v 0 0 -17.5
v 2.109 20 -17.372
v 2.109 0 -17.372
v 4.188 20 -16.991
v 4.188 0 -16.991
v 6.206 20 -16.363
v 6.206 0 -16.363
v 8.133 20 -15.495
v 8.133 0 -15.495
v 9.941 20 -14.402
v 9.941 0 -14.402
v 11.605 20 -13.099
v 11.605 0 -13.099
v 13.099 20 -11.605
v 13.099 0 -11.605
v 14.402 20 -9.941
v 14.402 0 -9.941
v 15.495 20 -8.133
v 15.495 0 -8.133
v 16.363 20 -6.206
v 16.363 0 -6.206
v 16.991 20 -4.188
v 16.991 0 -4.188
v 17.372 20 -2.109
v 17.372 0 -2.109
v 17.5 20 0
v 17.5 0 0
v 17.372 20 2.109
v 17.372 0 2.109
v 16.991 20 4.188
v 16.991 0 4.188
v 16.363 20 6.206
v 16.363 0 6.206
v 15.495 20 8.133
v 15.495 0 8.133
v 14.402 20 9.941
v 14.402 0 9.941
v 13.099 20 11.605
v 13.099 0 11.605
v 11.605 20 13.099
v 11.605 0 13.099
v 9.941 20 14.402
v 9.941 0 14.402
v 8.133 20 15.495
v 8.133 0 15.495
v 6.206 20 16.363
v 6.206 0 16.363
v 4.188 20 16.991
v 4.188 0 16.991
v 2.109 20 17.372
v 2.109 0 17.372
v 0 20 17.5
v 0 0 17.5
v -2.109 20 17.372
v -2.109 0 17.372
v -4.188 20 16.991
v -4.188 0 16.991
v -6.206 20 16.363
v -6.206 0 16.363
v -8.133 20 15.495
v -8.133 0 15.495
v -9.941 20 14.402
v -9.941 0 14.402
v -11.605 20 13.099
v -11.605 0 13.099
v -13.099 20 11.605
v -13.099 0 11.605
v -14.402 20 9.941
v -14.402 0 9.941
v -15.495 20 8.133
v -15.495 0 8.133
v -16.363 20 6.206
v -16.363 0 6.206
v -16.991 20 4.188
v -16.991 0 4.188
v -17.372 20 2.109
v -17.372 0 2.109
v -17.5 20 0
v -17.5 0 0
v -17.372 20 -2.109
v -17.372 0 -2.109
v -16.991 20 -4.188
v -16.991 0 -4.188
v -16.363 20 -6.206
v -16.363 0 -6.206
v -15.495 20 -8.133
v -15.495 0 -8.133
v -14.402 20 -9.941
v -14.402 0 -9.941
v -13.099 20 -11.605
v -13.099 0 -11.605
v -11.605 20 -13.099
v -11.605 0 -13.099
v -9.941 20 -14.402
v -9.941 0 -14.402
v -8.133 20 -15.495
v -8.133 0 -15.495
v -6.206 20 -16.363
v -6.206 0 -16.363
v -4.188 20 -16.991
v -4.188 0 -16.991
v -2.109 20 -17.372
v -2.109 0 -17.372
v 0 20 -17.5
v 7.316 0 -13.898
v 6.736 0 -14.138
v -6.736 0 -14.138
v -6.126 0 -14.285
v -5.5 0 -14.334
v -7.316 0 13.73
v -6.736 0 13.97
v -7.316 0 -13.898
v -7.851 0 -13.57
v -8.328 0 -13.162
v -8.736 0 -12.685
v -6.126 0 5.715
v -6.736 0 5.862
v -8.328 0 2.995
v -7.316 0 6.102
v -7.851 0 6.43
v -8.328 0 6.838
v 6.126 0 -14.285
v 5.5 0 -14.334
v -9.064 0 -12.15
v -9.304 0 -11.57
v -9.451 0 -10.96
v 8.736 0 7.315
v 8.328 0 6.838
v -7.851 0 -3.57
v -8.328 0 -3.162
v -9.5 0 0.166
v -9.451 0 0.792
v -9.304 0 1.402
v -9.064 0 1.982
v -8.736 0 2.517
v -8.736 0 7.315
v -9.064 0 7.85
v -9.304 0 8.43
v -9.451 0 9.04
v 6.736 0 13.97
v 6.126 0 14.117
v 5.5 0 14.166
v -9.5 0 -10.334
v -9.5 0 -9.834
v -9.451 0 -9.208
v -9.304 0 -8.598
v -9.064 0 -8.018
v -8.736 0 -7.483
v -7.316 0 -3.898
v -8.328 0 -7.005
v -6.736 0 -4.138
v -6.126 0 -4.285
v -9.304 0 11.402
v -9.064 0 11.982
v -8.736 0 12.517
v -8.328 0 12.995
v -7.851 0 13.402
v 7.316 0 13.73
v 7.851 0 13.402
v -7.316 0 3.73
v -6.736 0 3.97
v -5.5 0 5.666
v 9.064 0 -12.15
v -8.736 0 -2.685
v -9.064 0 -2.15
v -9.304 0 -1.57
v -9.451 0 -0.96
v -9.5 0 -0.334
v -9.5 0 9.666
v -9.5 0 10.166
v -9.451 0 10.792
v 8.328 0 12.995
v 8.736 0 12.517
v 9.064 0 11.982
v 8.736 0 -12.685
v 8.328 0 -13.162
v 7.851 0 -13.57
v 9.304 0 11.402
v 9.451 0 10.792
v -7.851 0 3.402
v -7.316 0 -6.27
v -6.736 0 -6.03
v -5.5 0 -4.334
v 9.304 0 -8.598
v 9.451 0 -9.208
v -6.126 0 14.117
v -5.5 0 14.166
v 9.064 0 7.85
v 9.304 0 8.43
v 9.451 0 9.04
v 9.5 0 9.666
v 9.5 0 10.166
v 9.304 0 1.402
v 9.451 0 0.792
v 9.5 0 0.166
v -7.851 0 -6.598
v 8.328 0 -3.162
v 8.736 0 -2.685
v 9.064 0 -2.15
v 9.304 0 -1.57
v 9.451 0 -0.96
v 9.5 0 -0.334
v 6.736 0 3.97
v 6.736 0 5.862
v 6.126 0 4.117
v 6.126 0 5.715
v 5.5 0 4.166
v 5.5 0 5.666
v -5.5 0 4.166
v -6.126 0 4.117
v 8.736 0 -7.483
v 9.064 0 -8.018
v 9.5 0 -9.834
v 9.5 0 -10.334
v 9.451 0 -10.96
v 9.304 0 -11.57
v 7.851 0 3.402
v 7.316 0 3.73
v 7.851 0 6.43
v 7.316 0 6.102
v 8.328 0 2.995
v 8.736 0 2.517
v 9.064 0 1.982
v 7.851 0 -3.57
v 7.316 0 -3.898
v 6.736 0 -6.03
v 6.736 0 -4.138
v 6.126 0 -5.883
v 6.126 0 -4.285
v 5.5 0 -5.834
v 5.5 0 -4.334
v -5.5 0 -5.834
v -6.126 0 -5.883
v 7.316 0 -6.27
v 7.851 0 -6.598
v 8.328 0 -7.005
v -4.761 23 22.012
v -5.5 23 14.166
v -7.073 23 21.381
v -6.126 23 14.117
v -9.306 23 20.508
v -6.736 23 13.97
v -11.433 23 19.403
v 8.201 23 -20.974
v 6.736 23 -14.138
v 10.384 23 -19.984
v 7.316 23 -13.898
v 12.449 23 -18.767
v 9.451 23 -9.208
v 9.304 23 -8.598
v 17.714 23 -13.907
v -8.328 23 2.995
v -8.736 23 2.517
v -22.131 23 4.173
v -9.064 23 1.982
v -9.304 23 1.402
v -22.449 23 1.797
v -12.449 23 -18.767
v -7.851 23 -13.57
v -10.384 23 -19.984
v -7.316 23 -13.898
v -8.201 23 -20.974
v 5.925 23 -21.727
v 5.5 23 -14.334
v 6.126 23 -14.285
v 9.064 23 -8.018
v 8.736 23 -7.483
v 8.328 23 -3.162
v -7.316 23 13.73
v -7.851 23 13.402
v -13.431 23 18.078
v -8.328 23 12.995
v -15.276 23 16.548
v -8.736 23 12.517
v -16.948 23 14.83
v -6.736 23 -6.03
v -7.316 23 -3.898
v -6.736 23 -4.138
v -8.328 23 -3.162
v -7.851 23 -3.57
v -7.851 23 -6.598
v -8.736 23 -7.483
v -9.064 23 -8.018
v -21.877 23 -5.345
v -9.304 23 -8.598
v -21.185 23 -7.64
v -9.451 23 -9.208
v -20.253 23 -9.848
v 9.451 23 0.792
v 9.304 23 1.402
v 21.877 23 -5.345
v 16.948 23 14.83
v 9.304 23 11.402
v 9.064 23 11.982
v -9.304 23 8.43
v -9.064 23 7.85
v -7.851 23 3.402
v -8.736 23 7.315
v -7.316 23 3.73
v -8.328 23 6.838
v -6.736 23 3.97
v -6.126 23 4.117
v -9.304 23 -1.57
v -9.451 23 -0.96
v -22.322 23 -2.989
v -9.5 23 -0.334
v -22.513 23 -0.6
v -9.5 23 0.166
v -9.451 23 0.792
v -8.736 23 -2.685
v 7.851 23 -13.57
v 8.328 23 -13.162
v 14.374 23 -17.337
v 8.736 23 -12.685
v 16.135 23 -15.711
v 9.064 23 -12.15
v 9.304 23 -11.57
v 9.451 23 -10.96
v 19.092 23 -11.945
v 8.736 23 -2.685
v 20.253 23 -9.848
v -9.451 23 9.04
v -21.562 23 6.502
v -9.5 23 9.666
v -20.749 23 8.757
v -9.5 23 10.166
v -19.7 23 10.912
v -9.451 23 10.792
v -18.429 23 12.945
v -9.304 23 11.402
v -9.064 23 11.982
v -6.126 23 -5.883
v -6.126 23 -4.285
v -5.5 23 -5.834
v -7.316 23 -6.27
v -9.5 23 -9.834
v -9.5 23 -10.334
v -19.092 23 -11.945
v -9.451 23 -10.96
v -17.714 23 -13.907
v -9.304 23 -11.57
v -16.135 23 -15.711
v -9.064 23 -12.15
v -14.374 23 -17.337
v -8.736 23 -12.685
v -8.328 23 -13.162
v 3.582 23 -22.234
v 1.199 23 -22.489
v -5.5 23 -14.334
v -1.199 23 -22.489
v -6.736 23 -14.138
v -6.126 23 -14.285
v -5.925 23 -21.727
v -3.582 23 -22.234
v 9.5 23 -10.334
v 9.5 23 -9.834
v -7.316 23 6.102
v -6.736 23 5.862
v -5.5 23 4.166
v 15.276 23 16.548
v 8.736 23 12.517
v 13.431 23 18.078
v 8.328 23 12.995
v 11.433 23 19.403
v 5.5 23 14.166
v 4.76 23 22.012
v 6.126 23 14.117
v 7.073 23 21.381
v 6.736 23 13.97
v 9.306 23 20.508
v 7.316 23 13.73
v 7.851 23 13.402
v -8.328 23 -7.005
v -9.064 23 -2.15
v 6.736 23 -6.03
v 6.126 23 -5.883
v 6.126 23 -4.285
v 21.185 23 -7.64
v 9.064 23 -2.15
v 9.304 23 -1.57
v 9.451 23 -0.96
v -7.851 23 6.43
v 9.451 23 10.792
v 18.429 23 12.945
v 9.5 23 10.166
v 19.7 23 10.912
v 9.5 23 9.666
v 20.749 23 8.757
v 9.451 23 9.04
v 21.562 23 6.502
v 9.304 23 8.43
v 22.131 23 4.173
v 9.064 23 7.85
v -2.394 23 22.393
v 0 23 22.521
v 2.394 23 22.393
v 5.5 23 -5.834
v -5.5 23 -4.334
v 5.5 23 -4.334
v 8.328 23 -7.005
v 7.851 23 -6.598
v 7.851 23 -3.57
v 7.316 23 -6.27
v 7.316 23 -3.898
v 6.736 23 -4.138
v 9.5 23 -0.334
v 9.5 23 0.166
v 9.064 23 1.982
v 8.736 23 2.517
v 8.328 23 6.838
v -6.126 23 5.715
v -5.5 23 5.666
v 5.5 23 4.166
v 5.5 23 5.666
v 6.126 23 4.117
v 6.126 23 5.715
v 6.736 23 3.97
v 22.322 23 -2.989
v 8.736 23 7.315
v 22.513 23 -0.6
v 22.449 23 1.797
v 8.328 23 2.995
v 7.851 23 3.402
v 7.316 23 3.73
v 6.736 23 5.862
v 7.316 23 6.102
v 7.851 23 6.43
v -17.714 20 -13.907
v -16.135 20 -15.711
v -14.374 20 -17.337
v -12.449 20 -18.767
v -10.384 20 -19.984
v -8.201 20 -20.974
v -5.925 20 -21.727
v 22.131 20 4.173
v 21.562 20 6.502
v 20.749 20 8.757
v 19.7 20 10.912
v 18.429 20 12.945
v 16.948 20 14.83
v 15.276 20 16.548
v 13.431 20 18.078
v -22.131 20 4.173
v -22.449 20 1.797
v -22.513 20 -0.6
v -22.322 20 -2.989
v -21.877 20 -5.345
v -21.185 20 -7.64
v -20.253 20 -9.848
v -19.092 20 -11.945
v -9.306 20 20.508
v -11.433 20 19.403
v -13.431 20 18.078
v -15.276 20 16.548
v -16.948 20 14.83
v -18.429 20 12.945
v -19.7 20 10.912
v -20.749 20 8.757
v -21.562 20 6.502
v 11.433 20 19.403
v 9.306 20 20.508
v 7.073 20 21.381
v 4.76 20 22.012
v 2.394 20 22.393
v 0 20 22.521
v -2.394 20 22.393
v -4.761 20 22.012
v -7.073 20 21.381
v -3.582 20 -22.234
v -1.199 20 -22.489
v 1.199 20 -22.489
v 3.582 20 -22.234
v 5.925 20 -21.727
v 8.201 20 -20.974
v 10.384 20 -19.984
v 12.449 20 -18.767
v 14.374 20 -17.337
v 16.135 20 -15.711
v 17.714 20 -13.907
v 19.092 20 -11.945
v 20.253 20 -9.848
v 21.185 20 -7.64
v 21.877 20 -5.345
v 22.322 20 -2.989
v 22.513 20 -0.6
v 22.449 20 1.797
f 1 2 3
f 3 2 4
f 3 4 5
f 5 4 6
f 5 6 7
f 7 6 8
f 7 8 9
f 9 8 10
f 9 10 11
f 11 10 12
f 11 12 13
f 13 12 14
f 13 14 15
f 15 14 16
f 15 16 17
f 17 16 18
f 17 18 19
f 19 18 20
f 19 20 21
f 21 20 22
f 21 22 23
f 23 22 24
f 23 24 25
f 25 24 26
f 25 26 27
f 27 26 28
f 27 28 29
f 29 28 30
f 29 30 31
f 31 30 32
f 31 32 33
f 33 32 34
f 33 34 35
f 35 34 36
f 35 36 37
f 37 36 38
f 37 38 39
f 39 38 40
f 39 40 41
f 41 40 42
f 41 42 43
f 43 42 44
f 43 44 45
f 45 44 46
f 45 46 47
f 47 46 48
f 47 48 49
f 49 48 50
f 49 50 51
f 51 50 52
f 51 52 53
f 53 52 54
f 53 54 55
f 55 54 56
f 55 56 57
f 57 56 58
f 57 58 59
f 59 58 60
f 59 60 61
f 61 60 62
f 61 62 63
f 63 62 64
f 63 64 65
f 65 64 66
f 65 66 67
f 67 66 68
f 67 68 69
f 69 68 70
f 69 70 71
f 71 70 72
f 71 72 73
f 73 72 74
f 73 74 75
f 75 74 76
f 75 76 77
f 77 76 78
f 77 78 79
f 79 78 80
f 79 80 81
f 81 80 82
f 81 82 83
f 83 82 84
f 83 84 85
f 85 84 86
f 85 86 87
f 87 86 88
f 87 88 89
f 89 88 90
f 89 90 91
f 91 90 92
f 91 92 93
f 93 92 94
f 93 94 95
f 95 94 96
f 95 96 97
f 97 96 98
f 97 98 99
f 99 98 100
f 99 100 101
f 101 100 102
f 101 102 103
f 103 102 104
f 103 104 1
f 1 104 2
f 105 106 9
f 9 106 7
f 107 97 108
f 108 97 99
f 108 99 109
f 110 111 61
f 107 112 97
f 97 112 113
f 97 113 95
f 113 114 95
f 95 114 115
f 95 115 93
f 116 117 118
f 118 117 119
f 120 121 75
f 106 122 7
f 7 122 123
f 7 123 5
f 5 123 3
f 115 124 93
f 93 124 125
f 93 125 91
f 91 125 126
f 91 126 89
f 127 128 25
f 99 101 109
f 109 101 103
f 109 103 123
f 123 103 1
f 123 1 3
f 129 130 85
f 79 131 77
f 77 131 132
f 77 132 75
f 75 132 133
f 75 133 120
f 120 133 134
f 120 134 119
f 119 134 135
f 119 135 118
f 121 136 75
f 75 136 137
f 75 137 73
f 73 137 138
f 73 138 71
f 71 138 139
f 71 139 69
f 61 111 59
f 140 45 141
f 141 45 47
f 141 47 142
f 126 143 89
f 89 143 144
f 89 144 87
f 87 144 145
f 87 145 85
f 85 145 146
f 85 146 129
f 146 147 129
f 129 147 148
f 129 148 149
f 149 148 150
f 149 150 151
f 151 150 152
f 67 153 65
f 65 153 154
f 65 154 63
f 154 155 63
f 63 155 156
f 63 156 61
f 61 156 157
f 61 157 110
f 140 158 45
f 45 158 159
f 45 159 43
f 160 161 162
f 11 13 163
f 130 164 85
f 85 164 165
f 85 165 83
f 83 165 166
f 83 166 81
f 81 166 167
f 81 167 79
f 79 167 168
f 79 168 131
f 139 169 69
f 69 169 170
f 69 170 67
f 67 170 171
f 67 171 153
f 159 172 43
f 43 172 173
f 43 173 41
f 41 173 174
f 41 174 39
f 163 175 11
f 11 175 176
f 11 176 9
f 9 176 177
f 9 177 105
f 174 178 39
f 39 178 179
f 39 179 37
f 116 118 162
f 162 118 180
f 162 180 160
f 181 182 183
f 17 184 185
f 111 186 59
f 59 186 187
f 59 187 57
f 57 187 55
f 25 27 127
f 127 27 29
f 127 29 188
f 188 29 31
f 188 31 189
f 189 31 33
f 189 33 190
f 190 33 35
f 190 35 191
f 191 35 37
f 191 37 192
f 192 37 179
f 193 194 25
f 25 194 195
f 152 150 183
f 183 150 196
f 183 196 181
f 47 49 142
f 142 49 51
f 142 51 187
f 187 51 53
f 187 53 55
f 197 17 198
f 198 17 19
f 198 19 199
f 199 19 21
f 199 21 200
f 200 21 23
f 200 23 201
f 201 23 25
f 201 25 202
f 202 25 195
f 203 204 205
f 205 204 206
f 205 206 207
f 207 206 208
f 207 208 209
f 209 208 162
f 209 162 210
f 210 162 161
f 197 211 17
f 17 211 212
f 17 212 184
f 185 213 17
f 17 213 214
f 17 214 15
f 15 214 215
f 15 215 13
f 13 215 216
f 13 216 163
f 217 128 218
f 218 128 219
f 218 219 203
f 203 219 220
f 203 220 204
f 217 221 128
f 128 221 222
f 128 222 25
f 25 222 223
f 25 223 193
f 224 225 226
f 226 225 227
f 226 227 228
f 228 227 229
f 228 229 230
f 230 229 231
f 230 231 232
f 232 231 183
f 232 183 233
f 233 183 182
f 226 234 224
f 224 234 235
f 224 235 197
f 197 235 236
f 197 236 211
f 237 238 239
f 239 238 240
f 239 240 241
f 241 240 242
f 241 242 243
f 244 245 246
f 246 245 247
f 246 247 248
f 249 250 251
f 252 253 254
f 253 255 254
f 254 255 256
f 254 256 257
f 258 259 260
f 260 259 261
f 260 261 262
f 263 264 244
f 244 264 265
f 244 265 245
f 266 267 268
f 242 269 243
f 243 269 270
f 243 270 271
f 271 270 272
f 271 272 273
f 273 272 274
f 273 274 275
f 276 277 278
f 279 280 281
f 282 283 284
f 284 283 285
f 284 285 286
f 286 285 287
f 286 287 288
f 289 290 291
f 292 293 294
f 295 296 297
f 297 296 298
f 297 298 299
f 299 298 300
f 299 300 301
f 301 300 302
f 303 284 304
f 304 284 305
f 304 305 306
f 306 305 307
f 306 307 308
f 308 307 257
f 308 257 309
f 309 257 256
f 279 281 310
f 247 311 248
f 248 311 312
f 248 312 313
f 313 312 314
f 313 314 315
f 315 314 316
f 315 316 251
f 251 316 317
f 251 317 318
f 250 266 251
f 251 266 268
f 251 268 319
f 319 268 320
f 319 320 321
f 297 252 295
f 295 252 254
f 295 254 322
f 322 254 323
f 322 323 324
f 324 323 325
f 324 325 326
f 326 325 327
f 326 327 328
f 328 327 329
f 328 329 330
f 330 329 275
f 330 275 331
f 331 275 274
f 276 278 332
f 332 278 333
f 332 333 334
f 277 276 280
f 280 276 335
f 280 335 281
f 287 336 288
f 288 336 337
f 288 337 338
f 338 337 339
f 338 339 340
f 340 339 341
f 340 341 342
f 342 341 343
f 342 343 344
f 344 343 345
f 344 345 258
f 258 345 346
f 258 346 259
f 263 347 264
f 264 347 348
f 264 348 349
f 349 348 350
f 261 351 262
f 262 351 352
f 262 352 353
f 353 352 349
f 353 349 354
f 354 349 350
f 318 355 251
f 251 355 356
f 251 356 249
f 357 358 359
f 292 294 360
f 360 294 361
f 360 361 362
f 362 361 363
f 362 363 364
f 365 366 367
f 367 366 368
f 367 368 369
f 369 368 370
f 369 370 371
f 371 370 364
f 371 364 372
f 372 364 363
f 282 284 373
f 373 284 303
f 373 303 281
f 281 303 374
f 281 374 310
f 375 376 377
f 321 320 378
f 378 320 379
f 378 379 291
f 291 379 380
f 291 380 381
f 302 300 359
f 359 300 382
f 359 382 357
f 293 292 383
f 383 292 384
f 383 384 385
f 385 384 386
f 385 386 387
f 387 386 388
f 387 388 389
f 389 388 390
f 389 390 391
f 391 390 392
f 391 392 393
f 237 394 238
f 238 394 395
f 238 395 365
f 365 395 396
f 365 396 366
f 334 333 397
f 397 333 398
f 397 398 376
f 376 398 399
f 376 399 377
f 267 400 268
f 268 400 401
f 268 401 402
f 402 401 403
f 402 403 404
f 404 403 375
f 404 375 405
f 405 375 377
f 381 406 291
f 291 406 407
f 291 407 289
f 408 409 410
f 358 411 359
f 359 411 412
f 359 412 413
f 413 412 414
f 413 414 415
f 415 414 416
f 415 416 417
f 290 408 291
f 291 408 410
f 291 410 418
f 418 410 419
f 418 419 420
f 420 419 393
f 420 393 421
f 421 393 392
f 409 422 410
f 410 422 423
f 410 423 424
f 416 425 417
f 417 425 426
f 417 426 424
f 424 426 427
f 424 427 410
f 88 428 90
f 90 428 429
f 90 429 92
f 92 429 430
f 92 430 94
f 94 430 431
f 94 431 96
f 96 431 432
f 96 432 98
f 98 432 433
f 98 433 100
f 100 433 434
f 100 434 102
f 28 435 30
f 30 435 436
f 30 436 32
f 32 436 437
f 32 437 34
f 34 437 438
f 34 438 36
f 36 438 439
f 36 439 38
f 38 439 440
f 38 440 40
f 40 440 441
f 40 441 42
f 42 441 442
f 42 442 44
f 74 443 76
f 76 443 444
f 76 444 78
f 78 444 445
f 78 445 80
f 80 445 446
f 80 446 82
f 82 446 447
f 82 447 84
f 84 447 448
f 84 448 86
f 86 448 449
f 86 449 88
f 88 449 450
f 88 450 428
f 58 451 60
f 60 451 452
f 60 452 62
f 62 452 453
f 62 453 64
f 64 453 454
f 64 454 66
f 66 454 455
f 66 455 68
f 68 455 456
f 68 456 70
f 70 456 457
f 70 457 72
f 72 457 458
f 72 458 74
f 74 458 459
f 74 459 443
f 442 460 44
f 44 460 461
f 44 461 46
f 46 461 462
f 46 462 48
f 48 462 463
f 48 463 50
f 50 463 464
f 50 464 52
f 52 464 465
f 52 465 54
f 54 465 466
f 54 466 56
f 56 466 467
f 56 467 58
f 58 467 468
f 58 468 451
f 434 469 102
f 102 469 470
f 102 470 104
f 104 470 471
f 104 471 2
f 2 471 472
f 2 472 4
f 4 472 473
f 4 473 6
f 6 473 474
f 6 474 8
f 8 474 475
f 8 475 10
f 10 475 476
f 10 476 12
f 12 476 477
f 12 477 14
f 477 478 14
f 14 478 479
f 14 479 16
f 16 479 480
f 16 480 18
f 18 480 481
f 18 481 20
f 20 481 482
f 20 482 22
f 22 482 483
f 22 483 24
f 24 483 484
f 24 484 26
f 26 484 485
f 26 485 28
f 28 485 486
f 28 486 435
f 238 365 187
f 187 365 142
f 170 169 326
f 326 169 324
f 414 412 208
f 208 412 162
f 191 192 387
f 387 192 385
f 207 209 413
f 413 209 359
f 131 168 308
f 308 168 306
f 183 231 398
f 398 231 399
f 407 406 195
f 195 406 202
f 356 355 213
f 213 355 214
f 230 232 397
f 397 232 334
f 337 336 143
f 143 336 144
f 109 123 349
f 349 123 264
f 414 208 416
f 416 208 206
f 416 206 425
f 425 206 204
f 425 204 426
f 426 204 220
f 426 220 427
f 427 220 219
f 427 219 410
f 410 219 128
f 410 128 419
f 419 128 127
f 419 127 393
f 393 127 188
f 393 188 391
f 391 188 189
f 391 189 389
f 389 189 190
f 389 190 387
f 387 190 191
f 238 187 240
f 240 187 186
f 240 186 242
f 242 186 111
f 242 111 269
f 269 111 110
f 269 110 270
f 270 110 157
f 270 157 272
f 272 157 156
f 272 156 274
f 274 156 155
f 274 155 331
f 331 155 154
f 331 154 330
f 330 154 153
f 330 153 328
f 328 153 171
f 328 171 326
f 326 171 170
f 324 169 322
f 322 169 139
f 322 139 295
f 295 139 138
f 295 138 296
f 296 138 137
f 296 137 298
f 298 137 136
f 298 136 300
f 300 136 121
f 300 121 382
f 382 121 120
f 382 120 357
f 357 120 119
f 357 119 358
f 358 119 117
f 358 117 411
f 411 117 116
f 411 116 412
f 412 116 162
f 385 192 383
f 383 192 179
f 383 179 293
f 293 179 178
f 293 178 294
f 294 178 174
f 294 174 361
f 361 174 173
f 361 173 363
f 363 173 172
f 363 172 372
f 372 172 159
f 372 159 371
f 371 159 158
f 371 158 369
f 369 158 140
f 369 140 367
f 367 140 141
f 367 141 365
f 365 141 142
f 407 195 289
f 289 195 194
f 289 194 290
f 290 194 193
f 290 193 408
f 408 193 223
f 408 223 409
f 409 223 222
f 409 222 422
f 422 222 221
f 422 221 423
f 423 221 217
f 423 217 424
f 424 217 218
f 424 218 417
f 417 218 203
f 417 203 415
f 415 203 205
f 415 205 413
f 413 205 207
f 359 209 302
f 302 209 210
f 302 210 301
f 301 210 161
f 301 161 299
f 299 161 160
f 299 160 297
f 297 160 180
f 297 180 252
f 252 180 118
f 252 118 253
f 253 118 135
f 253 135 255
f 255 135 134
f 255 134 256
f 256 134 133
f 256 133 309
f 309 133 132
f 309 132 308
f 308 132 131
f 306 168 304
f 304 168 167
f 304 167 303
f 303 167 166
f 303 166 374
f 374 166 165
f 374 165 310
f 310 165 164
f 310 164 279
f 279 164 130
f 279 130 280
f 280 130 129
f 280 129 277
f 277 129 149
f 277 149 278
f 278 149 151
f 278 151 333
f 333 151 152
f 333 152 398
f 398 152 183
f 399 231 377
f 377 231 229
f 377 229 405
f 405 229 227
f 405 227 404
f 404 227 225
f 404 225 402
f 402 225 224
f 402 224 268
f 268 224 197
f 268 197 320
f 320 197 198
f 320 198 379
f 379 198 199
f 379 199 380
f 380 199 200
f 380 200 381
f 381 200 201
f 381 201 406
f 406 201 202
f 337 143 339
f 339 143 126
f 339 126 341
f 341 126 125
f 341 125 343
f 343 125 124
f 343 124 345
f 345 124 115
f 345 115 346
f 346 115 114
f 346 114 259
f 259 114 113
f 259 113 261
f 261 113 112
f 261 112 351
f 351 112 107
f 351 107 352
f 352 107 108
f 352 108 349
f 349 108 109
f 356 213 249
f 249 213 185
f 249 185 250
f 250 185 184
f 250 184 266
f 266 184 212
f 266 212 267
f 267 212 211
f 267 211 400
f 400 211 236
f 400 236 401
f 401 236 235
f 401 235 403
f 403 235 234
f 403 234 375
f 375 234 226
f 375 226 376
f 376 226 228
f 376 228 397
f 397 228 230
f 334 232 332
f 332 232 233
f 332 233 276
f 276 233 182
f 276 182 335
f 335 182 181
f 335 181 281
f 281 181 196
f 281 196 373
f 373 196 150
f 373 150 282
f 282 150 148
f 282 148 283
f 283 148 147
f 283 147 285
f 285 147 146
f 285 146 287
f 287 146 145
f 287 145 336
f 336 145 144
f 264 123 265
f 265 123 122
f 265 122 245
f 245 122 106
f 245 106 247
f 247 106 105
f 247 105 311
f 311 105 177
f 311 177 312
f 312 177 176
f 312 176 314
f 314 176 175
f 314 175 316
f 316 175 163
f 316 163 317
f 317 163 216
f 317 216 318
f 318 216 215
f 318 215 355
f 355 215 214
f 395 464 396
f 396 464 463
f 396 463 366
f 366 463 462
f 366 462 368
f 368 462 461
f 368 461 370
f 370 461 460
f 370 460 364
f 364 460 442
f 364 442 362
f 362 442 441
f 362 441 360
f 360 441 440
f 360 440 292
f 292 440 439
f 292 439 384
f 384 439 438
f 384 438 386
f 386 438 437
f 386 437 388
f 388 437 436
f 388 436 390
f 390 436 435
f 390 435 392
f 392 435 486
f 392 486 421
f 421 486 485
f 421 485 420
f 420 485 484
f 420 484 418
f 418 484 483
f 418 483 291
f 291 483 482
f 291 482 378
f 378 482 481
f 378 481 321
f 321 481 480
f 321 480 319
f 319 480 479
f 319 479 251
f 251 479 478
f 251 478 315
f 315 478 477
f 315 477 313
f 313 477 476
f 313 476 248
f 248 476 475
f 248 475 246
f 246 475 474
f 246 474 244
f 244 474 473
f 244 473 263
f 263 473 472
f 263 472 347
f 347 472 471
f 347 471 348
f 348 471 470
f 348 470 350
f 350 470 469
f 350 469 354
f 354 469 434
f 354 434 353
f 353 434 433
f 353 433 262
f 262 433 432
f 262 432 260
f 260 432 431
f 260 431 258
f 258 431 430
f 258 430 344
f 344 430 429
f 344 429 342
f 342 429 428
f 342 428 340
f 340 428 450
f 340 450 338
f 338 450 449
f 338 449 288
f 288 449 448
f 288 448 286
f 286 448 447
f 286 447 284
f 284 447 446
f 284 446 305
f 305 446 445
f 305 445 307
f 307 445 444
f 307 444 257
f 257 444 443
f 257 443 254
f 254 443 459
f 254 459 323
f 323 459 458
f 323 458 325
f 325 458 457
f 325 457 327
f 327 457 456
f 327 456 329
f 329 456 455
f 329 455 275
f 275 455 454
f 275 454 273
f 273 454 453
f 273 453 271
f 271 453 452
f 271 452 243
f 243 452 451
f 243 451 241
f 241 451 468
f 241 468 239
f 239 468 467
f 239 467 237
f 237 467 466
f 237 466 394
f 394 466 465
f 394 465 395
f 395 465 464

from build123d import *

# Parameters (mm, degrees)
SKETCH1_R           = 17.5
BOSS_EXTRUDE1_DEPTH = 20
SKETCH2_R           = 21.5
BOSS_EXTRUDE2_DEPTH = 3
SKETCH3_W           = 19
SKETCH3_H           = 8.5
CUT_EXTRUDE3_DEPTH  = 23
FILLET11_R          = 4
FILLET12_R          = 4
BOSS_EXTRUDE4_START = -3
SKETCH6_R           = 22.520770935
SKETCH6_R_2         = 21.5
BOSS_EXTRUDE4_DEPTH = 3


with BuildPart() as part:
    # Sketch1 → Boss-Extrude1 (new body)
    with BuildSketch(Plane(origin=(0, 0, 0), x_dir=(1, 0, 0), z_dir=(0, 1, 0))):
        with Locations(Location((0, 0, 0), (0, 0, 270))):
            Circle(SKETCH1_R)
    extrude(amount=BOSS_EXTRUDE1_DEPTH)

    # Sketch2 → Boss-Extrude2 (add)
    with BuildSketch(Plane(origin=(0, 20, 0), x_dir=(1, 0, 0), z_dir=(0, 1, 0))):
        with Locations(Location((0, 0, 0), (0, 0, 270))):
            Circle(SKETCH2_R)
    extrude(amount=BOSS_EXTRUDE2_DEPTH)

    # Sketch3 → Cut-Extrude3 (cut)
    with BuildSketch(Plane(origin=(0, 23, 0), x_dir=(1, 0, 0), z_dir=(0, 1, 0))):
        with Locations((0, 0.083811037)):
            Rectangle(SKETCH3_W, SKETCH3_H)
        with Locations((0, 10.083811037)):
            Rectangle(SKETCH3_W, SKETCH3_H)
        with Locations((0, -9.916188963)):
            Rectangle(SKETCH3_W, SKETCH3_H)
    extrude(amount=-CUT_EXTRUDE3_DEPTH, mode=Mode.SUBTRACT)

    # Fillet11
    fillet11_edges = [part.edges().sort_by_distance(p)[0] for p in [
        (9.5, 11.5, 4.166188963),
        (-9.5, 11.5, 4.166188963),
        (-9.5, 11.5, -4.333811037),
        (9.5, 11.5, -4.333811037),
        (9.5, 11.5, 14.166188963),
        (-9.5, 11.5, 14.166188963),
        (-9.5, 11.5, 5.666188963),
        (9.5, 11.5, 5.666188963),
    ]]
    fillet(fillet11_edges, radius=FILLET11_R)

    # Fillet12
    fillet12_edges = [part.edges().sort_by_distance(p)[0] for p in [
        (9.5, 11.5, -14.333811037),
        (9.5, 11.5, -5.833811037),
        (-9.5, 11.5, -5.833811037),
        (-9.5, 11.5, -14.333811037),
    ]]
    fillet(fillet12_edges, radius=FILLET12_R)

    # Sketch6 → Boss-Extrude4 (add)
    with BuildSketch(Plane(origin=(0, 23, 0), x_dir=(1, 0, 0), z_dir=(0, 1, 0)).offset(BOSS_EXTRUDE4_START)):
        with Locations(Location((0, 0, 0), (0, 0, 270))):
            Circle(SKETCH6_R)
        Circle(SKETCH6_R_2, mode=Mode.SUBTRACT)
    extrude(amount=BOSS_EXTRUDE4_DEPTH)


solid = part.part
